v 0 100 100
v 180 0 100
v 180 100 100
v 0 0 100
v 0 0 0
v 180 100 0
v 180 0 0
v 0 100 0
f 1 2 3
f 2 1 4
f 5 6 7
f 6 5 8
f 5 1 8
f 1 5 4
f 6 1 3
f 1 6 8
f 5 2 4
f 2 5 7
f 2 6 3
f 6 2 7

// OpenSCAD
// Tessellation parameters
size = 100;
count = 5;

module square_tessellation(size, count) {
  for (i = [0:count-1]) {
    translate([size * i / count, 0, 0]) {
      square(size);
    }
  }
}

module square(size) {
  difference() {
    cube([size, size, size]);
    translate([size/4, size/4, size/4]) cube([size/2, size/2, size/2]);
  }
}

square_tessellation(size, count);
